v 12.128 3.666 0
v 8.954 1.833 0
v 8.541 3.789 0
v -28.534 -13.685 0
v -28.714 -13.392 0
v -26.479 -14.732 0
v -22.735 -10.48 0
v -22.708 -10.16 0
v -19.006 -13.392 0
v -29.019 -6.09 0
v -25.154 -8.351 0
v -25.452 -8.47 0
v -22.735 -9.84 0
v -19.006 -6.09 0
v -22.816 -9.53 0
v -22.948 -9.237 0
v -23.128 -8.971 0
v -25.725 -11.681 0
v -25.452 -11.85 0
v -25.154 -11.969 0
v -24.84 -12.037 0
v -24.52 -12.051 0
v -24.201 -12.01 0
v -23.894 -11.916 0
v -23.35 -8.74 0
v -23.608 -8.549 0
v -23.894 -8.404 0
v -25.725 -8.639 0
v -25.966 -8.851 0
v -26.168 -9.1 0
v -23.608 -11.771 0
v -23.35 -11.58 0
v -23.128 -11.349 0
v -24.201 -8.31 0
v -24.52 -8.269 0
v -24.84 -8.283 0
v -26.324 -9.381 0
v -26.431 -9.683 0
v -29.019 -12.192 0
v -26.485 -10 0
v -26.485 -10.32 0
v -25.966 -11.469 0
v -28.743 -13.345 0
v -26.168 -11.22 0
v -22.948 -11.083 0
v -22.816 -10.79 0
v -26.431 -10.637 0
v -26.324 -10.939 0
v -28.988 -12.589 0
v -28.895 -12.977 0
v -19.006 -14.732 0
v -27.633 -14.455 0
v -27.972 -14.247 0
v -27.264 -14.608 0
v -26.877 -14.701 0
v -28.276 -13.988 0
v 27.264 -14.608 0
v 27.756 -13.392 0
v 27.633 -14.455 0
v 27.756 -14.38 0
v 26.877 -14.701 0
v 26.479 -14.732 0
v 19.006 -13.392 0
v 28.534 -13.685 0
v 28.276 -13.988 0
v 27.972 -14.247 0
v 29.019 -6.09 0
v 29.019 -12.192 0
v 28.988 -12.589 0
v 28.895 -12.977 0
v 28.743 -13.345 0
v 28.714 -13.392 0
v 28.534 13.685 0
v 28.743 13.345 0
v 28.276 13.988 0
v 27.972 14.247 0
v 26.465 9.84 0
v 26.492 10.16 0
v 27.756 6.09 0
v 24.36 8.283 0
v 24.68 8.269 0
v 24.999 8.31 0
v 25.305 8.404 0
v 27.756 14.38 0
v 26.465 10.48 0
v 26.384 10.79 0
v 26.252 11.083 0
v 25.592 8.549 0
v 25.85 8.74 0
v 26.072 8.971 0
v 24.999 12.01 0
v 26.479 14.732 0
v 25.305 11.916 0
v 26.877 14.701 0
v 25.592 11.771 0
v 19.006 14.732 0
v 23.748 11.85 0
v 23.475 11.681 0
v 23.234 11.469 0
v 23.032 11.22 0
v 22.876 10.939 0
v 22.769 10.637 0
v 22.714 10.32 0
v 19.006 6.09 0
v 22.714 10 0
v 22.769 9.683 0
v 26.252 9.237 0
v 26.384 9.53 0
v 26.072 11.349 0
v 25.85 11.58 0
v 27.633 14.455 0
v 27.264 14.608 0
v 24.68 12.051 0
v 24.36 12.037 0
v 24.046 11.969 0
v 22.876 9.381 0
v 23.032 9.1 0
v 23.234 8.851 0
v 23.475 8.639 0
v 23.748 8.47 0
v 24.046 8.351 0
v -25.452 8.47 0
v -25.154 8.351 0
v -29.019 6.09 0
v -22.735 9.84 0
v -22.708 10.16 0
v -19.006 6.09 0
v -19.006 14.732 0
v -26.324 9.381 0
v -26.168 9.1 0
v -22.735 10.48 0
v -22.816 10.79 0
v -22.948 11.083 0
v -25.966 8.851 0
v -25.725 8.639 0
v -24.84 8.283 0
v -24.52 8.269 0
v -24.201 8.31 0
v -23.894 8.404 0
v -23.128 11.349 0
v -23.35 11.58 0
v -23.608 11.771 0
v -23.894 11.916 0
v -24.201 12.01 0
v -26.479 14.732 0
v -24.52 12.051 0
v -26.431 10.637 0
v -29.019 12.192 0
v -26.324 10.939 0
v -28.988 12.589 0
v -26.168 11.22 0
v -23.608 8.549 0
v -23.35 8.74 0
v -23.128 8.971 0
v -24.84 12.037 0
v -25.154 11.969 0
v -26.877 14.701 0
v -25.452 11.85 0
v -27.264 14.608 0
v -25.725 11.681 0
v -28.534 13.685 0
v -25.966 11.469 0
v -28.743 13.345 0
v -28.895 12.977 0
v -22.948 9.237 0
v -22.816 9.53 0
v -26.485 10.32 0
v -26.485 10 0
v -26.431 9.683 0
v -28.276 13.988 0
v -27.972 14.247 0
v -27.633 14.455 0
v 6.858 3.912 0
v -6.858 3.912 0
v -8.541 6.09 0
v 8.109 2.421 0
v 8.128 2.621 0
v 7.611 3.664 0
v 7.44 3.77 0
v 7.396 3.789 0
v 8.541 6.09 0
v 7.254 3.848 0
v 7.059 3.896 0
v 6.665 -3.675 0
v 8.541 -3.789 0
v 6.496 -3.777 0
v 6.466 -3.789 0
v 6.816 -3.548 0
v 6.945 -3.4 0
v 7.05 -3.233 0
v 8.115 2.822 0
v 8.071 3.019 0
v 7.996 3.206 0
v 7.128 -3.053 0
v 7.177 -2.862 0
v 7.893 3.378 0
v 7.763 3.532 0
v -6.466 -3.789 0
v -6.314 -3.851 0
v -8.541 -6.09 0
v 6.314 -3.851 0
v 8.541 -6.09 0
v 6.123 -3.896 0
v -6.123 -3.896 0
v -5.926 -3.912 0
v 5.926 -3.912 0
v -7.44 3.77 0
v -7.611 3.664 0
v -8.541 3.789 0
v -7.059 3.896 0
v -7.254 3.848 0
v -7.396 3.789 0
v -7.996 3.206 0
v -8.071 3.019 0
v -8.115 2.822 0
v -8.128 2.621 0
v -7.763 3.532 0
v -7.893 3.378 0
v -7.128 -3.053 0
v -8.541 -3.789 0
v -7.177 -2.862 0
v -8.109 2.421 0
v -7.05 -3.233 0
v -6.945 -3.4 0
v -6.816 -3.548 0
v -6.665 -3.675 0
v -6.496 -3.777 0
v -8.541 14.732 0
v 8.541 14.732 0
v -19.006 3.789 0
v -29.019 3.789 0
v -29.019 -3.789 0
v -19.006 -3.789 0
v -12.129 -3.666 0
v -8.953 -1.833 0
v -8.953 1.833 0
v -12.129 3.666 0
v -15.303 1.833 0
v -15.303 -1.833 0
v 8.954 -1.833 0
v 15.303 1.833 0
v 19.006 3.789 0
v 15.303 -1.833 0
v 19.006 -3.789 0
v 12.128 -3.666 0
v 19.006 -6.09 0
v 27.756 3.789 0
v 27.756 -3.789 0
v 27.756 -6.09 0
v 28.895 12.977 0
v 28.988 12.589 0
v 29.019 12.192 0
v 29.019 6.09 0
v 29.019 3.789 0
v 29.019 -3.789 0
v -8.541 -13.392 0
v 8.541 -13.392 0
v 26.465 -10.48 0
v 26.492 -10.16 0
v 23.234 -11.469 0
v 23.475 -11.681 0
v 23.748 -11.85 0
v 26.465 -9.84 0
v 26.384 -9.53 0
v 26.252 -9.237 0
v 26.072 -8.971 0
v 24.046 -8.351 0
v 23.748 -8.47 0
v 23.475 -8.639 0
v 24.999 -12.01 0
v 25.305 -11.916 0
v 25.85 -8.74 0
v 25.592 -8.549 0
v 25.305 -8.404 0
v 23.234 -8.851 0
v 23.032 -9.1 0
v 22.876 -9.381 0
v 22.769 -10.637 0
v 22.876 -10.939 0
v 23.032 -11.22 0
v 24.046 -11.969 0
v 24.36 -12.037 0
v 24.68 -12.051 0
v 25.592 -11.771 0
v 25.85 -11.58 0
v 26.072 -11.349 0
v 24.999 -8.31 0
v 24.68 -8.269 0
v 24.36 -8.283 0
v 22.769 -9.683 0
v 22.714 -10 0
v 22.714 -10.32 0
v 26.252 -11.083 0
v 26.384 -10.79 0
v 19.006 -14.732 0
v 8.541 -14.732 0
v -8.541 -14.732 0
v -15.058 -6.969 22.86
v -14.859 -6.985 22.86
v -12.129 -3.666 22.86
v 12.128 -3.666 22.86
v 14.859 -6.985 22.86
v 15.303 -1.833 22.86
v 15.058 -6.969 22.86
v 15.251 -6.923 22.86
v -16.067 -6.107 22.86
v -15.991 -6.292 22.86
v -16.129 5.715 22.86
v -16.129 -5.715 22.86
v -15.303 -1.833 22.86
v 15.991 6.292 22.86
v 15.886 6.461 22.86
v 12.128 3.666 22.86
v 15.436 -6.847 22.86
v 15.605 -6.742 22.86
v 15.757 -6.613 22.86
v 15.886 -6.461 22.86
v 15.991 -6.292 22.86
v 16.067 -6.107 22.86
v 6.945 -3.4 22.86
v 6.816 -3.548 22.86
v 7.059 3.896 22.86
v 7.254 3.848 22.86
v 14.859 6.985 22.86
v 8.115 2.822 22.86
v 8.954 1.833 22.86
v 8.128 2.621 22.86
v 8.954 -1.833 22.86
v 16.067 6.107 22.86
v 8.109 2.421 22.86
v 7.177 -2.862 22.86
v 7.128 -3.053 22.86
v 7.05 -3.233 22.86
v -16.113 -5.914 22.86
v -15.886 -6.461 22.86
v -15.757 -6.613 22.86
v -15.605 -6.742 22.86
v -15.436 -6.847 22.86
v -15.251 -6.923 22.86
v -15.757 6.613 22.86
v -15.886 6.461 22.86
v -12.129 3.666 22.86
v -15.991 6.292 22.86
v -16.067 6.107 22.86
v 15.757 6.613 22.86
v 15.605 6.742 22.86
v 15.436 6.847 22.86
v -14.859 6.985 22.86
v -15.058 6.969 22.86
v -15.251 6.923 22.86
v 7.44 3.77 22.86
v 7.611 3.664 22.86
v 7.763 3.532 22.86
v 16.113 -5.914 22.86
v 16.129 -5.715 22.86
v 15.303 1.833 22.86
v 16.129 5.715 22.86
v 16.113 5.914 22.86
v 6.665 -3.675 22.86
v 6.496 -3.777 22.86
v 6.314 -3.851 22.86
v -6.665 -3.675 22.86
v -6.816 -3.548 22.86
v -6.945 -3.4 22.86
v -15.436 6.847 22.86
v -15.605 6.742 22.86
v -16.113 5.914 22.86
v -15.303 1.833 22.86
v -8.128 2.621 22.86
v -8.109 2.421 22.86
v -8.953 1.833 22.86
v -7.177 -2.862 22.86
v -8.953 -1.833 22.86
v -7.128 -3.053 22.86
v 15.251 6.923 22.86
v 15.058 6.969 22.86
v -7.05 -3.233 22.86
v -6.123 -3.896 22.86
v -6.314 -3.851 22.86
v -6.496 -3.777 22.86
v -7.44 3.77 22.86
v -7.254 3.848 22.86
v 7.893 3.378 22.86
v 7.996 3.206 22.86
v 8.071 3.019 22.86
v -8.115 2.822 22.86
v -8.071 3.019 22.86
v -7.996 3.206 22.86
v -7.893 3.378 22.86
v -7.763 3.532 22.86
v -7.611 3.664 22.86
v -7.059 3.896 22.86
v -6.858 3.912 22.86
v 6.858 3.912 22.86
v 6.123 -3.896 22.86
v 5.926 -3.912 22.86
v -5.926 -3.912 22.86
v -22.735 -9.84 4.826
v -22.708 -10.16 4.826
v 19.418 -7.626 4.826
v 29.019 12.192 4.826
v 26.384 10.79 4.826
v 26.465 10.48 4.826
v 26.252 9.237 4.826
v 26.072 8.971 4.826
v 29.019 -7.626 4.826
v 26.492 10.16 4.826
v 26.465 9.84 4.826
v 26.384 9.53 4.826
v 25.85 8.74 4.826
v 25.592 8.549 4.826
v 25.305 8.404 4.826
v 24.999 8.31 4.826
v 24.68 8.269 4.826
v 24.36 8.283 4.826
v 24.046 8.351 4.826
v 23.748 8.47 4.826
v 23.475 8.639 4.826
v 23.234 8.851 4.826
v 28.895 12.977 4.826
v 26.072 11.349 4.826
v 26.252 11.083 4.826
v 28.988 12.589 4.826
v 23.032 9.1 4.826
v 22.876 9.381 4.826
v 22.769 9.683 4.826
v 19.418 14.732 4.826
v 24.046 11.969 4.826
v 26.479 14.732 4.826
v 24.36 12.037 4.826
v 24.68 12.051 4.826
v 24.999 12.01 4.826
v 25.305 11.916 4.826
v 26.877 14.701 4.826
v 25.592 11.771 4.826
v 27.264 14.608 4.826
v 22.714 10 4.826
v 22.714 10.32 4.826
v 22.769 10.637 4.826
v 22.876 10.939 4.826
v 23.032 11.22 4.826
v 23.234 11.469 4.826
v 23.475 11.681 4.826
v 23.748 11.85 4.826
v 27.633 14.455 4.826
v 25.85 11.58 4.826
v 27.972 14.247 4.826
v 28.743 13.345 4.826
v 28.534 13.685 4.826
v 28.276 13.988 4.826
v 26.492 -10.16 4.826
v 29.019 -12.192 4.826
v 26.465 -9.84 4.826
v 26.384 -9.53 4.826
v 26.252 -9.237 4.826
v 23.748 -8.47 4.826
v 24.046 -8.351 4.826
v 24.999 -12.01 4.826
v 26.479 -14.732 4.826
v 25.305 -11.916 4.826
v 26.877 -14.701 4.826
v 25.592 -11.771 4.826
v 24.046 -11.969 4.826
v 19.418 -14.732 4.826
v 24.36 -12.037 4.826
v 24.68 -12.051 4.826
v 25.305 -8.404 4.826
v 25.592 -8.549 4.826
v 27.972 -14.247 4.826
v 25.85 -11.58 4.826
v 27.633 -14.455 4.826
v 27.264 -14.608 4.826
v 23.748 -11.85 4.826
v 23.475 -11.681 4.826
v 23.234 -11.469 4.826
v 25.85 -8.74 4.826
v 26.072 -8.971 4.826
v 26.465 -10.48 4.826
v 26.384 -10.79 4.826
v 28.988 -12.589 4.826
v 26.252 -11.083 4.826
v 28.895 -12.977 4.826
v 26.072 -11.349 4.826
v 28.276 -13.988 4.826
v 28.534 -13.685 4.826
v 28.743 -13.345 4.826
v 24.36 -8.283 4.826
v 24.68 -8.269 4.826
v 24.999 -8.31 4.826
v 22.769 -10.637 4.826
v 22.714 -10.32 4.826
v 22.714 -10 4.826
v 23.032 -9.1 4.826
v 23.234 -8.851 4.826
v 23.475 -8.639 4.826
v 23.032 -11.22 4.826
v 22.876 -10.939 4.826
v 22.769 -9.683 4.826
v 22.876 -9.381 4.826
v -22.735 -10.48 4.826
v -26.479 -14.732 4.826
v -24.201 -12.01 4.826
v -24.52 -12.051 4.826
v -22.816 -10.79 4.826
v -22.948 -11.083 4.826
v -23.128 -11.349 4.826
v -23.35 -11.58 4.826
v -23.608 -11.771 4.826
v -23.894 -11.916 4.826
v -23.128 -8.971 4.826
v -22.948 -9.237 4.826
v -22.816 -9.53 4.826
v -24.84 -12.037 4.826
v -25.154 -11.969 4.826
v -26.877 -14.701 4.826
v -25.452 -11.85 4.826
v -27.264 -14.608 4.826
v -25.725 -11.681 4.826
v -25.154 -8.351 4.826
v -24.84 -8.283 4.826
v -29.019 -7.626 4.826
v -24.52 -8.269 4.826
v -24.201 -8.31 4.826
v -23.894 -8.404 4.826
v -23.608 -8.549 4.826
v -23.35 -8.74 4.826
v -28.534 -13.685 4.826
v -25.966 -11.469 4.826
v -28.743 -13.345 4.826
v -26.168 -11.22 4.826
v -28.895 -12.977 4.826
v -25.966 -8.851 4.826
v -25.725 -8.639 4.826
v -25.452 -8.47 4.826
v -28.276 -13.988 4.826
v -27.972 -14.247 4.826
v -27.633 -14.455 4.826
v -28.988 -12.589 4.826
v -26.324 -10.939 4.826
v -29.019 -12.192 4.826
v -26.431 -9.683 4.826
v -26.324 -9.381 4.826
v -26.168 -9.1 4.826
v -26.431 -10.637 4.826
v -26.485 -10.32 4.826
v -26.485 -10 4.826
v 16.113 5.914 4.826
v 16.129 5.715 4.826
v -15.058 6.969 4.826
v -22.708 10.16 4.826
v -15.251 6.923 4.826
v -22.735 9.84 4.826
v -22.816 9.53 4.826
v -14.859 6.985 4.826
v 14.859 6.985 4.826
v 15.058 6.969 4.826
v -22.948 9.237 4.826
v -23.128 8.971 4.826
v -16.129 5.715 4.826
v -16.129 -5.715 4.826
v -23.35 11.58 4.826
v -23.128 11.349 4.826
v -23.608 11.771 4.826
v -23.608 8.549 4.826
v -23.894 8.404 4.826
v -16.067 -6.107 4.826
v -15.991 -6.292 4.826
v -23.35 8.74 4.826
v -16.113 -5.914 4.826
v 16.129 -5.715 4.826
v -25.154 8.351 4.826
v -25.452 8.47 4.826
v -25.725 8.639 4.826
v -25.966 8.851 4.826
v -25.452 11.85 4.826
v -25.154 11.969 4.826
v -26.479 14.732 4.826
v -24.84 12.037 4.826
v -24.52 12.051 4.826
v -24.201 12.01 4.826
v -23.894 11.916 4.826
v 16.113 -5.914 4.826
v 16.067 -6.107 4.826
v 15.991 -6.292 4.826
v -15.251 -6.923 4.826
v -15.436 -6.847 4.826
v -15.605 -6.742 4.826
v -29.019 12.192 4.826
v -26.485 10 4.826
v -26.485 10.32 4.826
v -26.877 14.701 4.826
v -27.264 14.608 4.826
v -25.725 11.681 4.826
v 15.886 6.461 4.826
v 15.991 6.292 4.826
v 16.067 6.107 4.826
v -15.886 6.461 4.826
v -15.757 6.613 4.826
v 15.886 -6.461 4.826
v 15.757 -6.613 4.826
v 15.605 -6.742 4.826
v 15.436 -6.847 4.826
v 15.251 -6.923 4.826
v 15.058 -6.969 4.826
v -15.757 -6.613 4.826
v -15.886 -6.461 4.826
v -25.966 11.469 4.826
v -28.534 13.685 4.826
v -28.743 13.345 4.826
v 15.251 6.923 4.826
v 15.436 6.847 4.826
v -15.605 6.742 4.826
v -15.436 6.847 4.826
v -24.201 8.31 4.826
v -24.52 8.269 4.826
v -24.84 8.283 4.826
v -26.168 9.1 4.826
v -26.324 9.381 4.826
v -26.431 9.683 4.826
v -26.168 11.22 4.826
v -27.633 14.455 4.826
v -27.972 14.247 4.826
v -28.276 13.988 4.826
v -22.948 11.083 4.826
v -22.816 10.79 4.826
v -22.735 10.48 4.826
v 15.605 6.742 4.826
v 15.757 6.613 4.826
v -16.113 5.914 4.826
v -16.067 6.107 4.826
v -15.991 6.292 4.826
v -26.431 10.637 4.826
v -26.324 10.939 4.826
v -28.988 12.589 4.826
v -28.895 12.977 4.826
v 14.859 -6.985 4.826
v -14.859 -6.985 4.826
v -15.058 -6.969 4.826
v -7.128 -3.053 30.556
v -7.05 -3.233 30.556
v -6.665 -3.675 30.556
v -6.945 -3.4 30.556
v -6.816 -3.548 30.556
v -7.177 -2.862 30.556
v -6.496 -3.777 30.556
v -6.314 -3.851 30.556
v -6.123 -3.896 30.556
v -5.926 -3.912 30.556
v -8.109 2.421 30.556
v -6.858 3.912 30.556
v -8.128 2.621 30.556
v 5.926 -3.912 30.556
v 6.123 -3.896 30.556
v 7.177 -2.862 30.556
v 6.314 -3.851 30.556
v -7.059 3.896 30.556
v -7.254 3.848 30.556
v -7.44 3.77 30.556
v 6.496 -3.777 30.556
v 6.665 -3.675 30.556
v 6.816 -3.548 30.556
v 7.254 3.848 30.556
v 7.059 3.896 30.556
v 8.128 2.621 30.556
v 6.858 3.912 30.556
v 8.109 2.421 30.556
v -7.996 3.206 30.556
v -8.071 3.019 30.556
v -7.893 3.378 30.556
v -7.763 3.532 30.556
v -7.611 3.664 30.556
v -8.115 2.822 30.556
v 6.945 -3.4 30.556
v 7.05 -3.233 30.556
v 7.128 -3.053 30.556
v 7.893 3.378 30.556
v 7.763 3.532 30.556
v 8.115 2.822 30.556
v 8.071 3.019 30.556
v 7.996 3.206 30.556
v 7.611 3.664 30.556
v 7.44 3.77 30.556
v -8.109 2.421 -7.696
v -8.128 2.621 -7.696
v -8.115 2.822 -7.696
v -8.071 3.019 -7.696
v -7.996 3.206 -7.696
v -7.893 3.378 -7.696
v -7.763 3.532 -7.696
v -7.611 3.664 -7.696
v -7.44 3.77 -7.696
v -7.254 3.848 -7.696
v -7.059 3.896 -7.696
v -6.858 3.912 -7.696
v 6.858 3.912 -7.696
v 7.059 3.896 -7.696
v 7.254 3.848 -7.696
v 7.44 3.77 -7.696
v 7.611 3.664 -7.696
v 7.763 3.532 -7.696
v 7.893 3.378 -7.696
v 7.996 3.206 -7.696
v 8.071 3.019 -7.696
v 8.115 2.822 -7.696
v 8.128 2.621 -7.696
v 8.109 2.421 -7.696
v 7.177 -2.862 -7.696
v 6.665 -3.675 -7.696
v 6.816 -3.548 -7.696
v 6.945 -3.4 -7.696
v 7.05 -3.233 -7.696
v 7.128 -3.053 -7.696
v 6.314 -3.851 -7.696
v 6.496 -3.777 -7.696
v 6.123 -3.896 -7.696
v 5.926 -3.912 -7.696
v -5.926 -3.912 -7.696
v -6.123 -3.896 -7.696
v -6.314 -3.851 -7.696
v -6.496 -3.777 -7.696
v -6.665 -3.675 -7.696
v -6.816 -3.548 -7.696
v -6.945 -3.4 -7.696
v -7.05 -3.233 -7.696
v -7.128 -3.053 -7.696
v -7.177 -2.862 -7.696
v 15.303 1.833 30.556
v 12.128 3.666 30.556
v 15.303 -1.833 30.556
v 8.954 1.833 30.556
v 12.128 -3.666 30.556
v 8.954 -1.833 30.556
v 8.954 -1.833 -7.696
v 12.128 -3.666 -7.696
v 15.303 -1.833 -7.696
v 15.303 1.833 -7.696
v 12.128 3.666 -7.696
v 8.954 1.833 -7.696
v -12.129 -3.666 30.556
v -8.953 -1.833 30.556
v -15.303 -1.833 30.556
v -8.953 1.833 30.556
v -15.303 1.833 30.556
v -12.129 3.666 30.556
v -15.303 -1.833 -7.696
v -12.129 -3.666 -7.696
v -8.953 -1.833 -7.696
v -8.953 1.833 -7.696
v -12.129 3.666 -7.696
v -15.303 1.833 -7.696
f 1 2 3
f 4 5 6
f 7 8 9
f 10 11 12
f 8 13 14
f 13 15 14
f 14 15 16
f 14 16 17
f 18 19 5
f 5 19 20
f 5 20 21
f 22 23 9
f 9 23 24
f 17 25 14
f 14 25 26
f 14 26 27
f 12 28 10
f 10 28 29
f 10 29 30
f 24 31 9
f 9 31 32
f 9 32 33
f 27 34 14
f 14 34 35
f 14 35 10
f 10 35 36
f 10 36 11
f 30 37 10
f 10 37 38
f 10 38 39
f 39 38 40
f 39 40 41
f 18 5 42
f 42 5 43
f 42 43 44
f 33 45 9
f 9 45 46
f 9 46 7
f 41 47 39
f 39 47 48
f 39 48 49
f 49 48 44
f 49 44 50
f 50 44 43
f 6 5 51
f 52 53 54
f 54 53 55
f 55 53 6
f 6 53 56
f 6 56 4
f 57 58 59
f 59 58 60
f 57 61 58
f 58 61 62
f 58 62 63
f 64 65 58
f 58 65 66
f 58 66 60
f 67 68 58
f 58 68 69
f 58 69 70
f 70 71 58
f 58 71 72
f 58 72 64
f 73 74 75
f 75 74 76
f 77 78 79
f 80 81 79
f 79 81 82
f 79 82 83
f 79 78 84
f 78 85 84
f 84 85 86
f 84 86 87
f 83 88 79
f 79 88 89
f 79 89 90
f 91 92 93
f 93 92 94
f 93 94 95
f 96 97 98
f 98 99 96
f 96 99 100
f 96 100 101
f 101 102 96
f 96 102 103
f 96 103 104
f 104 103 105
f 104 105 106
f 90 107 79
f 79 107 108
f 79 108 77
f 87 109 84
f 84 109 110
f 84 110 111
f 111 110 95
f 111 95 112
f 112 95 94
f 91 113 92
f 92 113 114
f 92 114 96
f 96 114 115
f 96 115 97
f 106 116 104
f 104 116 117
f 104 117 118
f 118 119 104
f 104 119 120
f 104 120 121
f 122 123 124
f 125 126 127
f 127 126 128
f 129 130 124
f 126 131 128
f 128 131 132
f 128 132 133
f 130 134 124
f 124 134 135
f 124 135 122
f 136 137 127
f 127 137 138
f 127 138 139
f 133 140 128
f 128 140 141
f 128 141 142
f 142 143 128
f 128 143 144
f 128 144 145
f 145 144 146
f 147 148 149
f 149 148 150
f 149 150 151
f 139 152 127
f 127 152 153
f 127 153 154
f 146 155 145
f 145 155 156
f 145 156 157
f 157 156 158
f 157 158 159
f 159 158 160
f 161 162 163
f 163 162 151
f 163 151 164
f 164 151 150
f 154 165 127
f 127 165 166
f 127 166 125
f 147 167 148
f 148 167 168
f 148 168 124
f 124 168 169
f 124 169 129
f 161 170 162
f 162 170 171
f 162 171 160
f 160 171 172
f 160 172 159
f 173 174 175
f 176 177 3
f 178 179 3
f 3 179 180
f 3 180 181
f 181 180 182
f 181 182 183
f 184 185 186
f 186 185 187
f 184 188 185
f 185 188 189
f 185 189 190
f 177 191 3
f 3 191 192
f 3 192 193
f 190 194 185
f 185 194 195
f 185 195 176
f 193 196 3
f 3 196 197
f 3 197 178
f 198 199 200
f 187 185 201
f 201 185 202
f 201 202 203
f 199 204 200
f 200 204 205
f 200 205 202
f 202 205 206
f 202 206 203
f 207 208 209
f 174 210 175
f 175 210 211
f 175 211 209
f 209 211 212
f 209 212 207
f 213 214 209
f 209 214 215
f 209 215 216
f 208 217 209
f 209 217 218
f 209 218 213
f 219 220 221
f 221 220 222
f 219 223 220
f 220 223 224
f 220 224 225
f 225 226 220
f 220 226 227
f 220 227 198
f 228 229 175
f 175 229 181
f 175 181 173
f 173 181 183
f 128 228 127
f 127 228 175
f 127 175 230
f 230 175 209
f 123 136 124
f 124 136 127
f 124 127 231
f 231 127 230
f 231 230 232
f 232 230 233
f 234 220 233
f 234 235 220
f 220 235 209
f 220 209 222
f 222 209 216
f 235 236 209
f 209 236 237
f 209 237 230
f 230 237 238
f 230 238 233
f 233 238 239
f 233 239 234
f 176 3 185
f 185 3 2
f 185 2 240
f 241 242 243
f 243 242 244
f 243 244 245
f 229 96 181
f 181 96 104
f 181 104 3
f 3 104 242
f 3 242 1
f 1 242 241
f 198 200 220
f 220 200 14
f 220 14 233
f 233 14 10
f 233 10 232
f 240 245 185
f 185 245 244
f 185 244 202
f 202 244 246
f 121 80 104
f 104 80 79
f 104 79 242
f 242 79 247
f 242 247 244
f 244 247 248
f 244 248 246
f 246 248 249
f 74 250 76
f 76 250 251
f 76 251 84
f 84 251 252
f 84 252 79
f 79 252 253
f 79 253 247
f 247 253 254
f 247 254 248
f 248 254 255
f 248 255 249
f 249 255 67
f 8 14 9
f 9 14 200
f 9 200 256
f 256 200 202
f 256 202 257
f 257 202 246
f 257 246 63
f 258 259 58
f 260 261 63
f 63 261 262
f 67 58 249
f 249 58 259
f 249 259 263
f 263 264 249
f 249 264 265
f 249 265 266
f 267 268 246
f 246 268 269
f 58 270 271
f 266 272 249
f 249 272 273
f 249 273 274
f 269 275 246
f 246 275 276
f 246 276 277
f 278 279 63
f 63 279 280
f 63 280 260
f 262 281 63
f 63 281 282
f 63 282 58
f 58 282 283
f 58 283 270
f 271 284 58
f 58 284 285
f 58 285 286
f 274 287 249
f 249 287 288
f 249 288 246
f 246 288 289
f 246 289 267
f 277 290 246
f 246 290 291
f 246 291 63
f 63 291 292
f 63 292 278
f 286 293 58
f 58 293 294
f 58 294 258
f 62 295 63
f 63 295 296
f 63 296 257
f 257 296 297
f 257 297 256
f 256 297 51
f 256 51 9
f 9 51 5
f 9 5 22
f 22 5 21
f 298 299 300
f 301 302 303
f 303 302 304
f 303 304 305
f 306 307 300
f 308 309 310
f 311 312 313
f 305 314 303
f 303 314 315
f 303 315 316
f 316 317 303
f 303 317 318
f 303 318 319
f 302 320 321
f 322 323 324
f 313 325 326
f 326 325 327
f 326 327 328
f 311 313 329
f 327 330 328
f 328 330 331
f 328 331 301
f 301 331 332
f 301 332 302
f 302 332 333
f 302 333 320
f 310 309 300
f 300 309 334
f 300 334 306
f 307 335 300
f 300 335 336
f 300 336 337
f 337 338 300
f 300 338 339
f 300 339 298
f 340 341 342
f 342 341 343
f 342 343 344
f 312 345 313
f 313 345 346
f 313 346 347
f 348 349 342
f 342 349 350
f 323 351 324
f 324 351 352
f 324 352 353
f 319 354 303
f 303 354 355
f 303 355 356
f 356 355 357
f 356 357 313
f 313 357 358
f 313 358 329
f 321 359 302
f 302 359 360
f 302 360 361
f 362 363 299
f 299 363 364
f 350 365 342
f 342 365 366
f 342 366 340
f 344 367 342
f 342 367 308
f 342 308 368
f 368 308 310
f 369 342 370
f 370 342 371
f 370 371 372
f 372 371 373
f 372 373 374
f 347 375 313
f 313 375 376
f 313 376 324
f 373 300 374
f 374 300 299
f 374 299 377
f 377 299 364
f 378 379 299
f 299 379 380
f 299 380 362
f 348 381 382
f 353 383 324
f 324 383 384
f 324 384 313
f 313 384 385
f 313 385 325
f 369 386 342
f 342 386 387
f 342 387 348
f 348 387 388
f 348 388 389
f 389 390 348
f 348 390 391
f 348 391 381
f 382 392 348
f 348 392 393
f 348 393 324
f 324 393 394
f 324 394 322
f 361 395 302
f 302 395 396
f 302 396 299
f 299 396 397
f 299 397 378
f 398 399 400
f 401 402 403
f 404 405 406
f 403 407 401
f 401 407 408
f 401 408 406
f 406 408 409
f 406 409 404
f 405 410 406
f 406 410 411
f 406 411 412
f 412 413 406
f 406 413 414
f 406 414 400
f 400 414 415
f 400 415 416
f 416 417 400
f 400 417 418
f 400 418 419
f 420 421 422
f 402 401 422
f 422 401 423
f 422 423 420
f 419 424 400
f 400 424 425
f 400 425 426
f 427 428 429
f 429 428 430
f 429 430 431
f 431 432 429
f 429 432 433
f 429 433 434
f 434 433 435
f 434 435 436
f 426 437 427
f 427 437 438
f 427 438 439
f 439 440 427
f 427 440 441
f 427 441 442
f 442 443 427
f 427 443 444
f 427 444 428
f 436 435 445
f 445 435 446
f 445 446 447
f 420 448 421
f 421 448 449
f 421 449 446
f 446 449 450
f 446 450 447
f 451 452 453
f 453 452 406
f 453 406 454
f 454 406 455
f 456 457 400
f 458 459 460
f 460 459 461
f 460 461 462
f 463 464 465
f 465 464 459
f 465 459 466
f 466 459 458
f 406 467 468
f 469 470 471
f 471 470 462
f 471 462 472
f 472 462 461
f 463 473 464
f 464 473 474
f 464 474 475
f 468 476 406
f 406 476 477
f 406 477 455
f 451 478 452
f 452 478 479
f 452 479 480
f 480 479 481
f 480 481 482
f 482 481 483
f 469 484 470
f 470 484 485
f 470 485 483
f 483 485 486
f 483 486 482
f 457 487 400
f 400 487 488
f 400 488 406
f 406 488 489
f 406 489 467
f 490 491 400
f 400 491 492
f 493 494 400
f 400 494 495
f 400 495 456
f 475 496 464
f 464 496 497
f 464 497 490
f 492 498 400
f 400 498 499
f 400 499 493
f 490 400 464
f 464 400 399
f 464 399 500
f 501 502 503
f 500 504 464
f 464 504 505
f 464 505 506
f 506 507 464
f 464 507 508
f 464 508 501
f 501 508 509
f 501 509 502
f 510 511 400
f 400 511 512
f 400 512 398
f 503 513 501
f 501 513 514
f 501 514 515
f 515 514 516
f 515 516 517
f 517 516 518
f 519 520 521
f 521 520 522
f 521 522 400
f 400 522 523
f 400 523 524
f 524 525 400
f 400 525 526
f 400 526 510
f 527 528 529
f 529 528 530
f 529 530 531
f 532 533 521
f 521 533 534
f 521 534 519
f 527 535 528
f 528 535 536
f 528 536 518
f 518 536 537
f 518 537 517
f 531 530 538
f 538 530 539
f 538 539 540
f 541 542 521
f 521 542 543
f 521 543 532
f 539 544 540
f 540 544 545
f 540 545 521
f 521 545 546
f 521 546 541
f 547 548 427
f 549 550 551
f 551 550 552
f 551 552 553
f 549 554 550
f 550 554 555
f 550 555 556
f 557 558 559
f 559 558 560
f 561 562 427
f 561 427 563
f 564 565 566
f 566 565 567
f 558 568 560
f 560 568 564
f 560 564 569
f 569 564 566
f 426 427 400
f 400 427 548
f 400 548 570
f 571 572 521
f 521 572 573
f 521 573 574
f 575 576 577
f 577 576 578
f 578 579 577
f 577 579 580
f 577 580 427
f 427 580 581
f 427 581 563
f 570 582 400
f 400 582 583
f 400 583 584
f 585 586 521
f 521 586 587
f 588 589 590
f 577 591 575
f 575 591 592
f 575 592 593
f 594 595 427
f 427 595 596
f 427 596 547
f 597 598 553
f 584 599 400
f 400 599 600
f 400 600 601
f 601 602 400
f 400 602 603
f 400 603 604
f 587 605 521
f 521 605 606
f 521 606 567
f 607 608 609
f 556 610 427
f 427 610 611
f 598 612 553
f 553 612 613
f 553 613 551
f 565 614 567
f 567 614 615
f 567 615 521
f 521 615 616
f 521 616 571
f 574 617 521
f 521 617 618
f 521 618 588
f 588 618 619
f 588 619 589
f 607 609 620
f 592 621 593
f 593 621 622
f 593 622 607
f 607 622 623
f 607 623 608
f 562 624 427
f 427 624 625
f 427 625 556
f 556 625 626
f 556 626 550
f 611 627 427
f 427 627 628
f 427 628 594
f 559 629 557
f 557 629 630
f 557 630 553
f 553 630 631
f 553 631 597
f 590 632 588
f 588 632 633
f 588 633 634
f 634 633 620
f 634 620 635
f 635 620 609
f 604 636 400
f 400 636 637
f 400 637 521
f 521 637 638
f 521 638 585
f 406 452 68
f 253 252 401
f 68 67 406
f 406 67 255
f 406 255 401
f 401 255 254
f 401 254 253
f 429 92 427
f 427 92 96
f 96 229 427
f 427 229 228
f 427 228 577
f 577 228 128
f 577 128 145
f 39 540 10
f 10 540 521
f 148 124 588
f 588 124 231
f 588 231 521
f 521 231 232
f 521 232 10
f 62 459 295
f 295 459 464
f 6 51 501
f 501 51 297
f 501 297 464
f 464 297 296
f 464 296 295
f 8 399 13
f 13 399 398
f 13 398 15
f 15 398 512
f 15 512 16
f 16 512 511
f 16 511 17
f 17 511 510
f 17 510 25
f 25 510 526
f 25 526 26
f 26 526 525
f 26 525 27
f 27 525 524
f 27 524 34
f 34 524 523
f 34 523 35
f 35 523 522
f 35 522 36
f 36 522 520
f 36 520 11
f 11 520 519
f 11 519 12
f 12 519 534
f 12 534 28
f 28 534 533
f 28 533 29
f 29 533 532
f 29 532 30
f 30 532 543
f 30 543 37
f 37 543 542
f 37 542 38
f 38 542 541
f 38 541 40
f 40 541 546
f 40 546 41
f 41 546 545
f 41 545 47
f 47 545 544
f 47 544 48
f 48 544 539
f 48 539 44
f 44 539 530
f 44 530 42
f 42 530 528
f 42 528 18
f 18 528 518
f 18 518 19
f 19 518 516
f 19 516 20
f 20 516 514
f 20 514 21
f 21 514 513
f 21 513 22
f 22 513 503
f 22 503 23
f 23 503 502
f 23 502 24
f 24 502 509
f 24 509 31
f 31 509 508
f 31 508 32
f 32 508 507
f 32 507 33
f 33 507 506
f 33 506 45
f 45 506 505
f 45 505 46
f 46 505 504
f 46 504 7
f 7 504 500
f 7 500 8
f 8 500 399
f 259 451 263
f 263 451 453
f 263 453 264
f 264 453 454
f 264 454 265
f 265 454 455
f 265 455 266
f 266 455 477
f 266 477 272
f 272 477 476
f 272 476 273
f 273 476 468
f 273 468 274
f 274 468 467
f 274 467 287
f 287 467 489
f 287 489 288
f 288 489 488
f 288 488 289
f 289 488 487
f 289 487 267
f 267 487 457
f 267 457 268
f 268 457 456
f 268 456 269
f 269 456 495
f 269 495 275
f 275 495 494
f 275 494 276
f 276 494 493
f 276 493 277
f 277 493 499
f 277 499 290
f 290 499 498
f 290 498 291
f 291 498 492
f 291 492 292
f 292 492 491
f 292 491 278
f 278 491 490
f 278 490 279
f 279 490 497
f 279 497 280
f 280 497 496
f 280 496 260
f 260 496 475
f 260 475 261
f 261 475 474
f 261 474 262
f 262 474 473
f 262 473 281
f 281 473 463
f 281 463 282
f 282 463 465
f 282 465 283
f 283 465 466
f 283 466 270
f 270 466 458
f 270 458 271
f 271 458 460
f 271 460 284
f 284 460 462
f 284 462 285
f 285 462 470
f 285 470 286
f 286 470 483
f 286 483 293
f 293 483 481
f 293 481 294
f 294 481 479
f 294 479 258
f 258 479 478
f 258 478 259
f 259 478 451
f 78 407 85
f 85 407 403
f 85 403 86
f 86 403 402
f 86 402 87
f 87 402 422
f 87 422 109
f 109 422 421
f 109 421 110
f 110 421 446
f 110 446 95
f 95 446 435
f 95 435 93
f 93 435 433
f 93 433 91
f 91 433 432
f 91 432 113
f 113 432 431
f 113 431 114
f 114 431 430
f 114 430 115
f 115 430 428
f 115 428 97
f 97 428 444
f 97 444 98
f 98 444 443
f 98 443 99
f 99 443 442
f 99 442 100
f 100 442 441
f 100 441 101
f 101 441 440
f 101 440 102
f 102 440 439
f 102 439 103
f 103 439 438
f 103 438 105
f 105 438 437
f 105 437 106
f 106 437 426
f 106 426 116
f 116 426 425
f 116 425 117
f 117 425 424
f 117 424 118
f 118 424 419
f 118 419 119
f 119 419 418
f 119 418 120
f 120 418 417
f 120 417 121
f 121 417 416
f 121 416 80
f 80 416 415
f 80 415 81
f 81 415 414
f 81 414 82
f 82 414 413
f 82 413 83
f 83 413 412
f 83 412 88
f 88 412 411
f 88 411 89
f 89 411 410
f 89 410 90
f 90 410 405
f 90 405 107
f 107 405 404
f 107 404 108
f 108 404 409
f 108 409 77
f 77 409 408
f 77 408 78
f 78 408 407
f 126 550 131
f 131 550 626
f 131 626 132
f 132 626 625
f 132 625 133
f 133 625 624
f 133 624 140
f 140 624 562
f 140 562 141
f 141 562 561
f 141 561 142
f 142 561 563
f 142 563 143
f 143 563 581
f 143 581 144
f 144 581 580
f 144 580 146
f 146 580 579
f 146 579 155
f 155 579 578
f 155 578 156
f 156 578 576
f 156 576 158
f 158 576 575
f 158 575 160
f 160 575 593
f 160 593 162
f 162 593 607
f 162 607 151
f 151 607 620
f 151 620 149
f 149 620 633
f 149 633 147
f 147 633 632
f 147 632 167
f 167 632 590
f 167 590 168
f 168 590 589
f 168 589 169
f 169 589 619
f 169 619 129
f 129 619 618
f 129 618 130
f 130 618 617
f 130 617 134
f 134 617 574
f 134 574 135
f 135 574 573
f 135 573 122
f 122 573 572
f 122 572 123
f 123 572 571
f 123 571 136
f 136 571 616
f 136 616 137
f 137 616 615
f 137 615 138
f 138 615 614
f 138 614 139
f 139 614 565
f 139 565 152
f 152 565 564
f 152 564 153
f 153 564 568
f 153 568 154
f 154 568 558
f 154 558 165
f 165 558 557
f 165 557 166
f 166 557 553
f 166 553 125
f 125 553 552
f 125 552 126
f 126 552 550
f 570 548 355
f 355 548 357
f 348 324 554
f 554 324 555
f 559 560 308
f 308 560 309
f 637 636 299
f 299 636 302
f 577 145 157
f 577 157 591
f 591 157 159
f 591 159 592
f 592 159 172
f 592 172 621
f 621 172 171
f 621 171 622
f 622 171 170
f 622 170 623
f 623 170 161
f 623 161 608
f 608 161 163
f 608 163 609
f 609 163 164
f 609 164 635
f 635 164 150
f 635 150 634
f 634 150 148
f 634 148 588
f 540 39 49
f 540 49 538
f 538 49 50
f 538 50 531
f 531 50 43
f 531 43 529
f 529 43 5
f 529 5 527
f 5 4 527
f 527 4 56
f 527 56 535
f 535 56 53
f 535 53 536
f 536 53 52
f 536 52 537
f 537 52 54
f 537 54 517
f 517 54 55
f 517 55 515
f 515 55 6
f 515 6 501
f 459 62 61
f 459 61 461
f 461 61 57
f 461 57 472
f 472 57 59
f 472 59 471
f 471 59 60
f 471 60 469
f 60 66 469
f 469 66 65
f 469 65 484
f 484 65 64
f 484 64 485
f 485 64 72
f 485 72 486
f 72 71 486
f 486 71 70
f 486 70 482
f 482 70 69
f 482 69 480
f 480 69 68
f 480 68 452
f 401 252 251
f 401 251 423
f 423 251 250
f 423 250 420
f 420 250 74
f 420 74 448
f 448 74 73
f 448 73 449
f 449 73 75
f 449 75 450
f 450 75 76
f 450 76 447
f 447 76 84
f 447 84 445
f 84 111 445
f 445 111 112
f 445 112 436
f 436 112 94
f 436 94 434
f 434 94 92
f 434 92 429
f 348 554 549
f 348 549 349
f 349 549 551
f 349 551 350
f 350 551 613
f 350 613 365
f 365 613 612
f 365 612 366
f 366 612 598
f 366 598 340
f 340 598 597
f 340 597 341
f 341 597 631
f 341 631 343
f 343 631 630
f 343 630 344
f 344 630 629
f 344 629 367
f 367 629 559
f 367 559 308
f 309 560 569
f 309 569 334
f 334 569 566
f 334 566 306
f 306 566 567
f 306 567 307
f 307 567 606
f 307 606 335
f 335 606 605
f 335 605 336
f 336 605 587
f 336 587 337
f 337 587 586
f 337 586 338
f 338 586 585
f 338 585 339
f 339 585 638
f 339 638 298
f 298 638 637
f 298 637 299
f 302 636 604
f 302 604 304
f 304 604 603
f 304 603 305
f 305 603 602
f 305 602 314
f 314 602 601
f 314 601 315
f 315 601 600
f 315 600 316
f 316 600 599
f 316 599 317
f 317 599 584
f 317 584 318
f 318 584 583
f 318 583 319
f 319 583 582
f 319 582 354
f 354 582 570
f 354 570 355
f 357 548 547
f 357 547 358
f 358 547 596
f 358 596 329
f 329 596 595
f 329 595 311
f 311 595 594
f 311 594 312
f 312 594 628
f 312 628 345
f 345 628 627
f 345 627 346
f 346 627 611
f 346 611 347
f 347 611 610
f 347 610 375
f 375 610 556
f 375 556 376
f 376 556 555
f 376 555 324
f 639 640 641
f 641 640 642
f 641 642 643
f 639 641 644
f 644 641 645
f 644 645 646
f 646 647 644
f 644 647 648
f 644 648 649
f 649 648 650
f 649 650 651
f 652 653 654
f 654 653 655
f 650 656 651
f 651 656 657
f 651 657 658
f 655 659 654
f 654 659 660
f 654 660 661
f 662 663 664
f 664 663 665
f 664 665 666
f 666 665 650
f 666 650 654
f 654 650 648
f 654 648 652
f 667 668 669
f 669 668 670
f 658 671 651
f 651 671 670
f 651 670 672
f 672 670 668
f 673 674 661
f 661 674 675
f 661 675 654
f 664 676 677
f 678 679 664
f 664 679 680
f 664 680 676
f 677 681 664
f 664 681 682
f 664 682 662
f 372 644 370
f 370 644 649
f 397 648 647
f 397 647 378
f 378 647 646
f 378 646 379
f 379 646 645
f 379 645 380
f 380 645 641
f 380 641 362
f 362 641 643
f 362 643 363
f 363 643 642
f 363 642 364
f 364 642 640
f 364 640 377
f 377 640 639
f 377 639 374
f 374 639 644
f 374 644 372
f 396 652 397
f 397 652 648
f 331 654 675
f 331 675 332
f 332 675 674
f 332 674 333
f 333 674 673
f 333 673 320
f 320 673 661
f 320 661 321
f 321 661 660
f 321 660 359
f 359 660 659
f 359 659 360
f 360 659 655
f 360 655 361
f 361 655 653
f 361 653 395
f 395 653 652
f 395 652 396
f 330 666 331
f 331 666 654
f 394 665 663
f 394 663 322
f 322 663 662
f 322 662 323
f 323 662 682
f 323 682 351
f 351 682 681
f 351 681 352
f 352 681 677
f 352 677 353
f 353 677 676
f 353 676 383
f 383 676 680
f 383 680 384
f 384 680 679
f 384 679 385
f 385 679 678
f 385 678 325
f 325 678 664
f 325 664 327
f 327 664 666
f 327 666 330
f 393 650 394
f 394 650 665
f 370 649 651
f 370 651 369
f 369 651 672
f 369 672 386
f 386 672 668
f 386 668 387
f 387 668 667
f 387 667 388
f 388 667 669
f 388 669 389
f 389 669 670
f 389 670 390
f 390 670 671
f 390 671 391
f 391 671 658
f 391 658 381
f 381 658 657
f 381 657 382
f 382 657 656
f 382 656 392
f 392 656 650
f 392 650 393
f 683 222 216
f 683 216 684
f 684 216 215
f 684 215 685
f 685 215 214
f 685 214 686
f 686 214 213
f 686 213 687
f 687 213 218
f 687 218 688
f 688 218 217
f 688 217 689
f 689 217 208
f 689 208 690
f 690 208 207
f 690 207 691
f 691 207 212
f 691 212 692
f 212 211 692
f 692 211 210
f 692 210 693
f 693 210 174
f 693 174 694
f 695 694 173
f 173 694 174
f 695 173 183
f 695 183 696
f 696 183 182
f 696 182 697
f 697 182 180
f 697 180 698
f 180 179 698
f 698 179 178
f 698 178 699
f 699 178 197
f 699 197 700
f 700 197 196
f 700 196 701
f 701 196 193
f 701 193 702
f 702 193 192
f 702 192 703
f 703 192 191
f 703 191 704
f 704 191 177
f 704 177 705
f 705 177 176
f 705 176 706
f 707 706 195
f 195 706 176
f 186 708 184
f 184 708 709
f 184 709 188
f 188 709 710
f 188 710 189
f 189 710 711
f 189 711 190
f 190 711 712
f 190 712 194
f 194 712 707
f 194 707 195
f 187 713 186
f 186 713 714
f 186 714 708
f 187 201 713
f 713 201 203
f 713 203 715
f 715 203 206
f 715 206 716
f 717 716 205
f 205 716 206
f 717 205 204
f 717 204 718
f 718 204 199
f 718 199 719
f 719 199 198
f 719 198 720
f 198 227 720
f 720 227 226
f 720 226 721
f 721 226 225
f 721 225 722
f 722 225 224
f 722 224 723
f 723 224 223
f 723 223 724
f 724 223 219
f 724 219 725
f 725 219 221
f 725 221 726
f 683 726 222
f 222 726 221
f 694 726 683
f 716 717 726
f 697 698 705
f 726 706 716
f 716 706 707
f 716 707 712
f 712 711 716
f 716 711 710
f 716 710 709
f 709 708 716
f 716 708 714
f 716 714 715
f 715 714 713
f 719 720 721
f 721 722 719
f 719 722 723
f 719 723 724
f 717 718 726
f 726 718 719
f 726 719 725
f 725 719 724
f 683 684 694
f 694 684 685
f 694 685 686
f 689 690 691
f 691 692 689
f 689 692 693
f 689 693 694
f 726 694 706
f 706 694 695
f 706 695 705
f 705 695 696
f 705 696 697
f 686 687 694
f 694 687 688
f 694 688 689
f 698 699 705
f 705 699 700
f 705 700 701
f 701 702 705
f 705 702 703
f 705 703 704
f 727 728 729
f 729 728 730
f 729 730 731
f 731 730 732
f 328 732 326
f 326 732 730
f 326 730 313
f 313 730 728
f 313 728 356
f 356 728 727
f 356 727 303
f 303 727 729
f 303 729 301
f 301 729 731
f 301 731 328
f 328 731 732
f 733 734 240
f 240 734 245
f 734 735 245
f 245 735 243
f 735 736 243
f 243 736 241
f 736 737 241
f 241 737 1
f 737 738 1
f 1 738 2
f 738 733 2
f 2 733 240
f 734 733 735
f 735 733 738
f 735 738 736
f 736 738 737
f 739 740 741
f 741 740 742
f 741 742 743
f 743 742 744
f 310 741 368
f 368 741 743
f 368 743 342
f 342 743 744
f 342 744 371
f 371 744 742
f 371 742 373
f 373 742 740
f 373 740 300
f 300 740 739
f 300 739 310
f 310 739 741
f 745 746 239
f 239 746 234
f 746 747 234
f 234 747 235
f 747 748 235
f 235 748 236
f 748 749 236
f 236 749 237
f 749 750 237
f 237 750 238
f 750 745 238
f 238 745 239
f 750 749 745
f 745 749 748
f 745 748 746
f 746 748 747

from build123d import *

# Parameters (mm, degrees)
SKETCH1_W                       = 58.039
SKETCH1_H                       = 29.464
BOSS_EXTRUDE1_DEPTH             = 4.826
F_25_0_1495_DIAMETER_HOLE1_D    = 3.7846
SKETCH4_W                       = 32.258
SKETCH4_H                       = 13.97
BOSS_EXTRUDE2_DEPTH             = 18.034
FILLET1_R                       = 2.54
FILLET2_R                       = 1.27
BOSS_EXTRUDE3_DEPTH             = 7.6962
BOSS_EXTRUDE3_DEPTH_BACK        = 30.5562
BOSS_EXTRUDE4_REACH             = 46.641
BOSS_EXTRUDE4_DIRECTION_2_REACH = 46.641


with BuildPart() as part:
    # Sketch1 → Boss-Extrude1 (new body)
    with BuildSketch(Plane.XY):
        Rectangle(SKETCH1_W, SKETCH1_H)
    extrude(amount=BOSS_EXTRUDE1_DEPTH)

    # #25 (0.1495) Diameter Hole1 (through all)
    with Locations(Plane.XY.offset(4.826)):
        with Locations((-24.5999, 10.16), (24.5999, 10.16), (24.5999, -10.16), (-24.5999, -10.16)):
            Hole(F_25_0_1495_DIAMETER_HOLE1_D / 2)

    # Sketch4 → Boss-Extrude2 (add)
    with BuildSketch(Plane.XY.offset(4.826)):
        Rectangle(SKETCH4_W, SKETCH4_H)
    extrude(amount=BOSS_EXTRUDE2_DEPTH)

    # Fillet1
    fillet1_edges = [part.edges().sort_by_distance(p)[0] for p in [
        (29.0195, -14.732, 2.413),
        (-29.0195, -14.732, 2.413),
        (-29.0195, 14.732, 2.413),
        (29.0195, 14.732, 2.413),
    ]]
    fillet(fillet1_edges, radius=FILLET1_R)

    # Fillet2
    fillet2_edges = [part.edges().sort_by_distance(p)[0] for p in [
        (16.129, -6.985, 13.843),
        (16.129, 6.985, 13.843),
        (-16.129, 6.985, 13.843),
        (-16.129, -6.985, 13.843),
    ]]
    fillet(fillet2_edges, radius=FILLET2_R)

    # Sketch5 → Boss-Extrude3 (add, two sides: drawn at the far end of the back side and taken through both)
    with BuildSketch(Plane.XY.offset(22.86).offset(-BOSS_EXTRUDE3_DEPTH_BACK)):
        with BuildLine():
            Line((8.108705846, 2.421066814), (7.177135142, -2.862133186))
            ThreePointArc((7.177135142, -2.862133186), (6.74276956, -3.614476443), (5.926429296, -3.9116))
            Line((5.926429296, -3.9116), (-5.926429296, -3.9116))
            ThreePointArc((-5.926429296, -3.9116), (-6.74276956, -3.614476443), (-7.177135142, -2.862133186))
            Line((-7.177135142, -2.862133186), (-8.108705846, 2.421066814))
            ThreePointArc((-8.108705846, 2.421066814), (-7.830876443, 3.457940264), (-6.858, 3.9116))
            Line((-6.858, 3.9116), (6.858, 3.9116))
            ThreePointArc((6.858, 3.9116), (7.830876443, 3.457940264), (8.108705846, 2.421066814))
        make_face()
    extrude(amount=BOSS_EXTRUDE3_DEPTH + BOSS_EXTRUDE3_DEPTH_BACK)

    # Boss-Extrude4: up to this face of the body (flat: up to its plane)
    boss_extrude4_end = Plane(part.part.faces().sort_by_distance((0, 0.101689946, 30.5562))[0])
    # Sketch6 → Boss-Extrude4 (add, up to the picked face)
    with BuildSketch(Plane.XY.offset(22.86), mode=Mode.PRIVATE) as boss_extrude4_sk1:
        Polygon((12.1285, -3.666174209), (15.3035, -1.833087105), (15.3035, 1.833087105), (12.1285, 3.666174209), (8.9535, 1.833087105), (8.9535, -1.833087105), align=None)
    boss_extrude4_tool1 = split(extrude(boss_extrude4_sk1.sketch, amount=BOSS_EXTRUDE4_REACH, mode=Mode.PRIVATE), bisect_by=boss_extrude4_end, keep=Keep.BOTH, mode=Mode.PRIVATE)
    # Sketch6 → Boss-Extrude4 (add, up to the picked face)
    with BuildSketch(Plane.XY.offset(22.86), mode=Mode.PRIVATE) as boss_extrude4_sk2:
        Polygon((-12.1285, -3.666174209), (-8.9535, -1.833087105), (-8.9535, 1.833087105), (-12.1285, 3.666174209), (-15.3035, 1.833087105), (-15.3035, -1.833087105), align=None)
    boss_extrude4_tool2 = split(extrude(boss_extrude4_sk2.sketch, amount=BOSS_EXTRUDE4_REACH, mode=Mode.PRIVATE), bisect_by=boss_extrude4_end, keep=Keep.BOTH, mode=Mode.PRIVATE)
    add(boss_extrude4_tool1.solids().sort_by(Axis((12.1285, 0, 22.86), (0, 0, 1)))[0])
    add(boss_extrude4_tool2.solids().sort_by(Axis((-12.1285, 0, 22.86), (0, 0, 1)))[0])

    # Boss-Extrude4 direction 2: up to this face of the body (flat: up to its plane)
    boss_extrude4_direction_2_end = Plane(part.part.faces().sort_by_distance((0, 0.101689946, -7.6962))[0])
    # Sketch6 → Boss-Extrude4 direction 2 (add, up to the picked face)
    with BuildSketch(Plane.XY.offset(22.86), mode=Mode.PRIVATE) as boss_extrude4_direction_2_sk1:
        Polygon((12.1285, -3.666174209), (15.3035, -1.833087105), (15.3035, 1.833087105), (12.1285, 3.666174209), (8.9535, 1.833087105), (8.9535, -1.833087105), align=None)
    boss_extrude4_direction_2_tool1 = split(extrude(boss_extrude4_direction_2_sk1.sketch, amount=-BOSS_EXTRUDE4_DIRECTION_2_REACH, mode=Mode.PRIVATE), bisect_by=boss_extrude4_direction_2_end, keep=Keep.BOTH, mode=Mode.PRIVATE)
    # Sketch6 → Boss-Extrude4 direction 2 (add, up to the picked face)
    with BuildSketch(Plane.XY.offset(22.86), mode=Mode.PRIVATE) as boss_extrude4_direction_2_sk2:
        Polygon((-12.1285, -3.666174209), (-8.9535, -1.833087105), (-8.9535, 1.833087105), (-12.1285, 3.666174209), (-15.3035, 1.833087105), (-15.3035, -1.833087105), align=None)
    boss_extrude4_direction_2_tool2 = split(extrude(boss_extrude4_direction_2_sk2.sketch, amount=-BOSS_EXTRUDE4_DIRECTION_2_REACH, mode=Mode.PRIVATE), bisect_by=boss_extrude4_direction_2_end, keep=Keep.BOTH, mode=Mode.PRIVATE)
    add(boss_extrude4_direction_2_tool1.solids().sort_by(Axis((12.1285, 0, 22.86), (0, 0, -1)))[0])
    add(boss_extrude4_direction_2_tool2.solids().sort_by(Axis((-12.1285, 0, 22.86), (0, 0, -1)))[0])


solid = part.part
